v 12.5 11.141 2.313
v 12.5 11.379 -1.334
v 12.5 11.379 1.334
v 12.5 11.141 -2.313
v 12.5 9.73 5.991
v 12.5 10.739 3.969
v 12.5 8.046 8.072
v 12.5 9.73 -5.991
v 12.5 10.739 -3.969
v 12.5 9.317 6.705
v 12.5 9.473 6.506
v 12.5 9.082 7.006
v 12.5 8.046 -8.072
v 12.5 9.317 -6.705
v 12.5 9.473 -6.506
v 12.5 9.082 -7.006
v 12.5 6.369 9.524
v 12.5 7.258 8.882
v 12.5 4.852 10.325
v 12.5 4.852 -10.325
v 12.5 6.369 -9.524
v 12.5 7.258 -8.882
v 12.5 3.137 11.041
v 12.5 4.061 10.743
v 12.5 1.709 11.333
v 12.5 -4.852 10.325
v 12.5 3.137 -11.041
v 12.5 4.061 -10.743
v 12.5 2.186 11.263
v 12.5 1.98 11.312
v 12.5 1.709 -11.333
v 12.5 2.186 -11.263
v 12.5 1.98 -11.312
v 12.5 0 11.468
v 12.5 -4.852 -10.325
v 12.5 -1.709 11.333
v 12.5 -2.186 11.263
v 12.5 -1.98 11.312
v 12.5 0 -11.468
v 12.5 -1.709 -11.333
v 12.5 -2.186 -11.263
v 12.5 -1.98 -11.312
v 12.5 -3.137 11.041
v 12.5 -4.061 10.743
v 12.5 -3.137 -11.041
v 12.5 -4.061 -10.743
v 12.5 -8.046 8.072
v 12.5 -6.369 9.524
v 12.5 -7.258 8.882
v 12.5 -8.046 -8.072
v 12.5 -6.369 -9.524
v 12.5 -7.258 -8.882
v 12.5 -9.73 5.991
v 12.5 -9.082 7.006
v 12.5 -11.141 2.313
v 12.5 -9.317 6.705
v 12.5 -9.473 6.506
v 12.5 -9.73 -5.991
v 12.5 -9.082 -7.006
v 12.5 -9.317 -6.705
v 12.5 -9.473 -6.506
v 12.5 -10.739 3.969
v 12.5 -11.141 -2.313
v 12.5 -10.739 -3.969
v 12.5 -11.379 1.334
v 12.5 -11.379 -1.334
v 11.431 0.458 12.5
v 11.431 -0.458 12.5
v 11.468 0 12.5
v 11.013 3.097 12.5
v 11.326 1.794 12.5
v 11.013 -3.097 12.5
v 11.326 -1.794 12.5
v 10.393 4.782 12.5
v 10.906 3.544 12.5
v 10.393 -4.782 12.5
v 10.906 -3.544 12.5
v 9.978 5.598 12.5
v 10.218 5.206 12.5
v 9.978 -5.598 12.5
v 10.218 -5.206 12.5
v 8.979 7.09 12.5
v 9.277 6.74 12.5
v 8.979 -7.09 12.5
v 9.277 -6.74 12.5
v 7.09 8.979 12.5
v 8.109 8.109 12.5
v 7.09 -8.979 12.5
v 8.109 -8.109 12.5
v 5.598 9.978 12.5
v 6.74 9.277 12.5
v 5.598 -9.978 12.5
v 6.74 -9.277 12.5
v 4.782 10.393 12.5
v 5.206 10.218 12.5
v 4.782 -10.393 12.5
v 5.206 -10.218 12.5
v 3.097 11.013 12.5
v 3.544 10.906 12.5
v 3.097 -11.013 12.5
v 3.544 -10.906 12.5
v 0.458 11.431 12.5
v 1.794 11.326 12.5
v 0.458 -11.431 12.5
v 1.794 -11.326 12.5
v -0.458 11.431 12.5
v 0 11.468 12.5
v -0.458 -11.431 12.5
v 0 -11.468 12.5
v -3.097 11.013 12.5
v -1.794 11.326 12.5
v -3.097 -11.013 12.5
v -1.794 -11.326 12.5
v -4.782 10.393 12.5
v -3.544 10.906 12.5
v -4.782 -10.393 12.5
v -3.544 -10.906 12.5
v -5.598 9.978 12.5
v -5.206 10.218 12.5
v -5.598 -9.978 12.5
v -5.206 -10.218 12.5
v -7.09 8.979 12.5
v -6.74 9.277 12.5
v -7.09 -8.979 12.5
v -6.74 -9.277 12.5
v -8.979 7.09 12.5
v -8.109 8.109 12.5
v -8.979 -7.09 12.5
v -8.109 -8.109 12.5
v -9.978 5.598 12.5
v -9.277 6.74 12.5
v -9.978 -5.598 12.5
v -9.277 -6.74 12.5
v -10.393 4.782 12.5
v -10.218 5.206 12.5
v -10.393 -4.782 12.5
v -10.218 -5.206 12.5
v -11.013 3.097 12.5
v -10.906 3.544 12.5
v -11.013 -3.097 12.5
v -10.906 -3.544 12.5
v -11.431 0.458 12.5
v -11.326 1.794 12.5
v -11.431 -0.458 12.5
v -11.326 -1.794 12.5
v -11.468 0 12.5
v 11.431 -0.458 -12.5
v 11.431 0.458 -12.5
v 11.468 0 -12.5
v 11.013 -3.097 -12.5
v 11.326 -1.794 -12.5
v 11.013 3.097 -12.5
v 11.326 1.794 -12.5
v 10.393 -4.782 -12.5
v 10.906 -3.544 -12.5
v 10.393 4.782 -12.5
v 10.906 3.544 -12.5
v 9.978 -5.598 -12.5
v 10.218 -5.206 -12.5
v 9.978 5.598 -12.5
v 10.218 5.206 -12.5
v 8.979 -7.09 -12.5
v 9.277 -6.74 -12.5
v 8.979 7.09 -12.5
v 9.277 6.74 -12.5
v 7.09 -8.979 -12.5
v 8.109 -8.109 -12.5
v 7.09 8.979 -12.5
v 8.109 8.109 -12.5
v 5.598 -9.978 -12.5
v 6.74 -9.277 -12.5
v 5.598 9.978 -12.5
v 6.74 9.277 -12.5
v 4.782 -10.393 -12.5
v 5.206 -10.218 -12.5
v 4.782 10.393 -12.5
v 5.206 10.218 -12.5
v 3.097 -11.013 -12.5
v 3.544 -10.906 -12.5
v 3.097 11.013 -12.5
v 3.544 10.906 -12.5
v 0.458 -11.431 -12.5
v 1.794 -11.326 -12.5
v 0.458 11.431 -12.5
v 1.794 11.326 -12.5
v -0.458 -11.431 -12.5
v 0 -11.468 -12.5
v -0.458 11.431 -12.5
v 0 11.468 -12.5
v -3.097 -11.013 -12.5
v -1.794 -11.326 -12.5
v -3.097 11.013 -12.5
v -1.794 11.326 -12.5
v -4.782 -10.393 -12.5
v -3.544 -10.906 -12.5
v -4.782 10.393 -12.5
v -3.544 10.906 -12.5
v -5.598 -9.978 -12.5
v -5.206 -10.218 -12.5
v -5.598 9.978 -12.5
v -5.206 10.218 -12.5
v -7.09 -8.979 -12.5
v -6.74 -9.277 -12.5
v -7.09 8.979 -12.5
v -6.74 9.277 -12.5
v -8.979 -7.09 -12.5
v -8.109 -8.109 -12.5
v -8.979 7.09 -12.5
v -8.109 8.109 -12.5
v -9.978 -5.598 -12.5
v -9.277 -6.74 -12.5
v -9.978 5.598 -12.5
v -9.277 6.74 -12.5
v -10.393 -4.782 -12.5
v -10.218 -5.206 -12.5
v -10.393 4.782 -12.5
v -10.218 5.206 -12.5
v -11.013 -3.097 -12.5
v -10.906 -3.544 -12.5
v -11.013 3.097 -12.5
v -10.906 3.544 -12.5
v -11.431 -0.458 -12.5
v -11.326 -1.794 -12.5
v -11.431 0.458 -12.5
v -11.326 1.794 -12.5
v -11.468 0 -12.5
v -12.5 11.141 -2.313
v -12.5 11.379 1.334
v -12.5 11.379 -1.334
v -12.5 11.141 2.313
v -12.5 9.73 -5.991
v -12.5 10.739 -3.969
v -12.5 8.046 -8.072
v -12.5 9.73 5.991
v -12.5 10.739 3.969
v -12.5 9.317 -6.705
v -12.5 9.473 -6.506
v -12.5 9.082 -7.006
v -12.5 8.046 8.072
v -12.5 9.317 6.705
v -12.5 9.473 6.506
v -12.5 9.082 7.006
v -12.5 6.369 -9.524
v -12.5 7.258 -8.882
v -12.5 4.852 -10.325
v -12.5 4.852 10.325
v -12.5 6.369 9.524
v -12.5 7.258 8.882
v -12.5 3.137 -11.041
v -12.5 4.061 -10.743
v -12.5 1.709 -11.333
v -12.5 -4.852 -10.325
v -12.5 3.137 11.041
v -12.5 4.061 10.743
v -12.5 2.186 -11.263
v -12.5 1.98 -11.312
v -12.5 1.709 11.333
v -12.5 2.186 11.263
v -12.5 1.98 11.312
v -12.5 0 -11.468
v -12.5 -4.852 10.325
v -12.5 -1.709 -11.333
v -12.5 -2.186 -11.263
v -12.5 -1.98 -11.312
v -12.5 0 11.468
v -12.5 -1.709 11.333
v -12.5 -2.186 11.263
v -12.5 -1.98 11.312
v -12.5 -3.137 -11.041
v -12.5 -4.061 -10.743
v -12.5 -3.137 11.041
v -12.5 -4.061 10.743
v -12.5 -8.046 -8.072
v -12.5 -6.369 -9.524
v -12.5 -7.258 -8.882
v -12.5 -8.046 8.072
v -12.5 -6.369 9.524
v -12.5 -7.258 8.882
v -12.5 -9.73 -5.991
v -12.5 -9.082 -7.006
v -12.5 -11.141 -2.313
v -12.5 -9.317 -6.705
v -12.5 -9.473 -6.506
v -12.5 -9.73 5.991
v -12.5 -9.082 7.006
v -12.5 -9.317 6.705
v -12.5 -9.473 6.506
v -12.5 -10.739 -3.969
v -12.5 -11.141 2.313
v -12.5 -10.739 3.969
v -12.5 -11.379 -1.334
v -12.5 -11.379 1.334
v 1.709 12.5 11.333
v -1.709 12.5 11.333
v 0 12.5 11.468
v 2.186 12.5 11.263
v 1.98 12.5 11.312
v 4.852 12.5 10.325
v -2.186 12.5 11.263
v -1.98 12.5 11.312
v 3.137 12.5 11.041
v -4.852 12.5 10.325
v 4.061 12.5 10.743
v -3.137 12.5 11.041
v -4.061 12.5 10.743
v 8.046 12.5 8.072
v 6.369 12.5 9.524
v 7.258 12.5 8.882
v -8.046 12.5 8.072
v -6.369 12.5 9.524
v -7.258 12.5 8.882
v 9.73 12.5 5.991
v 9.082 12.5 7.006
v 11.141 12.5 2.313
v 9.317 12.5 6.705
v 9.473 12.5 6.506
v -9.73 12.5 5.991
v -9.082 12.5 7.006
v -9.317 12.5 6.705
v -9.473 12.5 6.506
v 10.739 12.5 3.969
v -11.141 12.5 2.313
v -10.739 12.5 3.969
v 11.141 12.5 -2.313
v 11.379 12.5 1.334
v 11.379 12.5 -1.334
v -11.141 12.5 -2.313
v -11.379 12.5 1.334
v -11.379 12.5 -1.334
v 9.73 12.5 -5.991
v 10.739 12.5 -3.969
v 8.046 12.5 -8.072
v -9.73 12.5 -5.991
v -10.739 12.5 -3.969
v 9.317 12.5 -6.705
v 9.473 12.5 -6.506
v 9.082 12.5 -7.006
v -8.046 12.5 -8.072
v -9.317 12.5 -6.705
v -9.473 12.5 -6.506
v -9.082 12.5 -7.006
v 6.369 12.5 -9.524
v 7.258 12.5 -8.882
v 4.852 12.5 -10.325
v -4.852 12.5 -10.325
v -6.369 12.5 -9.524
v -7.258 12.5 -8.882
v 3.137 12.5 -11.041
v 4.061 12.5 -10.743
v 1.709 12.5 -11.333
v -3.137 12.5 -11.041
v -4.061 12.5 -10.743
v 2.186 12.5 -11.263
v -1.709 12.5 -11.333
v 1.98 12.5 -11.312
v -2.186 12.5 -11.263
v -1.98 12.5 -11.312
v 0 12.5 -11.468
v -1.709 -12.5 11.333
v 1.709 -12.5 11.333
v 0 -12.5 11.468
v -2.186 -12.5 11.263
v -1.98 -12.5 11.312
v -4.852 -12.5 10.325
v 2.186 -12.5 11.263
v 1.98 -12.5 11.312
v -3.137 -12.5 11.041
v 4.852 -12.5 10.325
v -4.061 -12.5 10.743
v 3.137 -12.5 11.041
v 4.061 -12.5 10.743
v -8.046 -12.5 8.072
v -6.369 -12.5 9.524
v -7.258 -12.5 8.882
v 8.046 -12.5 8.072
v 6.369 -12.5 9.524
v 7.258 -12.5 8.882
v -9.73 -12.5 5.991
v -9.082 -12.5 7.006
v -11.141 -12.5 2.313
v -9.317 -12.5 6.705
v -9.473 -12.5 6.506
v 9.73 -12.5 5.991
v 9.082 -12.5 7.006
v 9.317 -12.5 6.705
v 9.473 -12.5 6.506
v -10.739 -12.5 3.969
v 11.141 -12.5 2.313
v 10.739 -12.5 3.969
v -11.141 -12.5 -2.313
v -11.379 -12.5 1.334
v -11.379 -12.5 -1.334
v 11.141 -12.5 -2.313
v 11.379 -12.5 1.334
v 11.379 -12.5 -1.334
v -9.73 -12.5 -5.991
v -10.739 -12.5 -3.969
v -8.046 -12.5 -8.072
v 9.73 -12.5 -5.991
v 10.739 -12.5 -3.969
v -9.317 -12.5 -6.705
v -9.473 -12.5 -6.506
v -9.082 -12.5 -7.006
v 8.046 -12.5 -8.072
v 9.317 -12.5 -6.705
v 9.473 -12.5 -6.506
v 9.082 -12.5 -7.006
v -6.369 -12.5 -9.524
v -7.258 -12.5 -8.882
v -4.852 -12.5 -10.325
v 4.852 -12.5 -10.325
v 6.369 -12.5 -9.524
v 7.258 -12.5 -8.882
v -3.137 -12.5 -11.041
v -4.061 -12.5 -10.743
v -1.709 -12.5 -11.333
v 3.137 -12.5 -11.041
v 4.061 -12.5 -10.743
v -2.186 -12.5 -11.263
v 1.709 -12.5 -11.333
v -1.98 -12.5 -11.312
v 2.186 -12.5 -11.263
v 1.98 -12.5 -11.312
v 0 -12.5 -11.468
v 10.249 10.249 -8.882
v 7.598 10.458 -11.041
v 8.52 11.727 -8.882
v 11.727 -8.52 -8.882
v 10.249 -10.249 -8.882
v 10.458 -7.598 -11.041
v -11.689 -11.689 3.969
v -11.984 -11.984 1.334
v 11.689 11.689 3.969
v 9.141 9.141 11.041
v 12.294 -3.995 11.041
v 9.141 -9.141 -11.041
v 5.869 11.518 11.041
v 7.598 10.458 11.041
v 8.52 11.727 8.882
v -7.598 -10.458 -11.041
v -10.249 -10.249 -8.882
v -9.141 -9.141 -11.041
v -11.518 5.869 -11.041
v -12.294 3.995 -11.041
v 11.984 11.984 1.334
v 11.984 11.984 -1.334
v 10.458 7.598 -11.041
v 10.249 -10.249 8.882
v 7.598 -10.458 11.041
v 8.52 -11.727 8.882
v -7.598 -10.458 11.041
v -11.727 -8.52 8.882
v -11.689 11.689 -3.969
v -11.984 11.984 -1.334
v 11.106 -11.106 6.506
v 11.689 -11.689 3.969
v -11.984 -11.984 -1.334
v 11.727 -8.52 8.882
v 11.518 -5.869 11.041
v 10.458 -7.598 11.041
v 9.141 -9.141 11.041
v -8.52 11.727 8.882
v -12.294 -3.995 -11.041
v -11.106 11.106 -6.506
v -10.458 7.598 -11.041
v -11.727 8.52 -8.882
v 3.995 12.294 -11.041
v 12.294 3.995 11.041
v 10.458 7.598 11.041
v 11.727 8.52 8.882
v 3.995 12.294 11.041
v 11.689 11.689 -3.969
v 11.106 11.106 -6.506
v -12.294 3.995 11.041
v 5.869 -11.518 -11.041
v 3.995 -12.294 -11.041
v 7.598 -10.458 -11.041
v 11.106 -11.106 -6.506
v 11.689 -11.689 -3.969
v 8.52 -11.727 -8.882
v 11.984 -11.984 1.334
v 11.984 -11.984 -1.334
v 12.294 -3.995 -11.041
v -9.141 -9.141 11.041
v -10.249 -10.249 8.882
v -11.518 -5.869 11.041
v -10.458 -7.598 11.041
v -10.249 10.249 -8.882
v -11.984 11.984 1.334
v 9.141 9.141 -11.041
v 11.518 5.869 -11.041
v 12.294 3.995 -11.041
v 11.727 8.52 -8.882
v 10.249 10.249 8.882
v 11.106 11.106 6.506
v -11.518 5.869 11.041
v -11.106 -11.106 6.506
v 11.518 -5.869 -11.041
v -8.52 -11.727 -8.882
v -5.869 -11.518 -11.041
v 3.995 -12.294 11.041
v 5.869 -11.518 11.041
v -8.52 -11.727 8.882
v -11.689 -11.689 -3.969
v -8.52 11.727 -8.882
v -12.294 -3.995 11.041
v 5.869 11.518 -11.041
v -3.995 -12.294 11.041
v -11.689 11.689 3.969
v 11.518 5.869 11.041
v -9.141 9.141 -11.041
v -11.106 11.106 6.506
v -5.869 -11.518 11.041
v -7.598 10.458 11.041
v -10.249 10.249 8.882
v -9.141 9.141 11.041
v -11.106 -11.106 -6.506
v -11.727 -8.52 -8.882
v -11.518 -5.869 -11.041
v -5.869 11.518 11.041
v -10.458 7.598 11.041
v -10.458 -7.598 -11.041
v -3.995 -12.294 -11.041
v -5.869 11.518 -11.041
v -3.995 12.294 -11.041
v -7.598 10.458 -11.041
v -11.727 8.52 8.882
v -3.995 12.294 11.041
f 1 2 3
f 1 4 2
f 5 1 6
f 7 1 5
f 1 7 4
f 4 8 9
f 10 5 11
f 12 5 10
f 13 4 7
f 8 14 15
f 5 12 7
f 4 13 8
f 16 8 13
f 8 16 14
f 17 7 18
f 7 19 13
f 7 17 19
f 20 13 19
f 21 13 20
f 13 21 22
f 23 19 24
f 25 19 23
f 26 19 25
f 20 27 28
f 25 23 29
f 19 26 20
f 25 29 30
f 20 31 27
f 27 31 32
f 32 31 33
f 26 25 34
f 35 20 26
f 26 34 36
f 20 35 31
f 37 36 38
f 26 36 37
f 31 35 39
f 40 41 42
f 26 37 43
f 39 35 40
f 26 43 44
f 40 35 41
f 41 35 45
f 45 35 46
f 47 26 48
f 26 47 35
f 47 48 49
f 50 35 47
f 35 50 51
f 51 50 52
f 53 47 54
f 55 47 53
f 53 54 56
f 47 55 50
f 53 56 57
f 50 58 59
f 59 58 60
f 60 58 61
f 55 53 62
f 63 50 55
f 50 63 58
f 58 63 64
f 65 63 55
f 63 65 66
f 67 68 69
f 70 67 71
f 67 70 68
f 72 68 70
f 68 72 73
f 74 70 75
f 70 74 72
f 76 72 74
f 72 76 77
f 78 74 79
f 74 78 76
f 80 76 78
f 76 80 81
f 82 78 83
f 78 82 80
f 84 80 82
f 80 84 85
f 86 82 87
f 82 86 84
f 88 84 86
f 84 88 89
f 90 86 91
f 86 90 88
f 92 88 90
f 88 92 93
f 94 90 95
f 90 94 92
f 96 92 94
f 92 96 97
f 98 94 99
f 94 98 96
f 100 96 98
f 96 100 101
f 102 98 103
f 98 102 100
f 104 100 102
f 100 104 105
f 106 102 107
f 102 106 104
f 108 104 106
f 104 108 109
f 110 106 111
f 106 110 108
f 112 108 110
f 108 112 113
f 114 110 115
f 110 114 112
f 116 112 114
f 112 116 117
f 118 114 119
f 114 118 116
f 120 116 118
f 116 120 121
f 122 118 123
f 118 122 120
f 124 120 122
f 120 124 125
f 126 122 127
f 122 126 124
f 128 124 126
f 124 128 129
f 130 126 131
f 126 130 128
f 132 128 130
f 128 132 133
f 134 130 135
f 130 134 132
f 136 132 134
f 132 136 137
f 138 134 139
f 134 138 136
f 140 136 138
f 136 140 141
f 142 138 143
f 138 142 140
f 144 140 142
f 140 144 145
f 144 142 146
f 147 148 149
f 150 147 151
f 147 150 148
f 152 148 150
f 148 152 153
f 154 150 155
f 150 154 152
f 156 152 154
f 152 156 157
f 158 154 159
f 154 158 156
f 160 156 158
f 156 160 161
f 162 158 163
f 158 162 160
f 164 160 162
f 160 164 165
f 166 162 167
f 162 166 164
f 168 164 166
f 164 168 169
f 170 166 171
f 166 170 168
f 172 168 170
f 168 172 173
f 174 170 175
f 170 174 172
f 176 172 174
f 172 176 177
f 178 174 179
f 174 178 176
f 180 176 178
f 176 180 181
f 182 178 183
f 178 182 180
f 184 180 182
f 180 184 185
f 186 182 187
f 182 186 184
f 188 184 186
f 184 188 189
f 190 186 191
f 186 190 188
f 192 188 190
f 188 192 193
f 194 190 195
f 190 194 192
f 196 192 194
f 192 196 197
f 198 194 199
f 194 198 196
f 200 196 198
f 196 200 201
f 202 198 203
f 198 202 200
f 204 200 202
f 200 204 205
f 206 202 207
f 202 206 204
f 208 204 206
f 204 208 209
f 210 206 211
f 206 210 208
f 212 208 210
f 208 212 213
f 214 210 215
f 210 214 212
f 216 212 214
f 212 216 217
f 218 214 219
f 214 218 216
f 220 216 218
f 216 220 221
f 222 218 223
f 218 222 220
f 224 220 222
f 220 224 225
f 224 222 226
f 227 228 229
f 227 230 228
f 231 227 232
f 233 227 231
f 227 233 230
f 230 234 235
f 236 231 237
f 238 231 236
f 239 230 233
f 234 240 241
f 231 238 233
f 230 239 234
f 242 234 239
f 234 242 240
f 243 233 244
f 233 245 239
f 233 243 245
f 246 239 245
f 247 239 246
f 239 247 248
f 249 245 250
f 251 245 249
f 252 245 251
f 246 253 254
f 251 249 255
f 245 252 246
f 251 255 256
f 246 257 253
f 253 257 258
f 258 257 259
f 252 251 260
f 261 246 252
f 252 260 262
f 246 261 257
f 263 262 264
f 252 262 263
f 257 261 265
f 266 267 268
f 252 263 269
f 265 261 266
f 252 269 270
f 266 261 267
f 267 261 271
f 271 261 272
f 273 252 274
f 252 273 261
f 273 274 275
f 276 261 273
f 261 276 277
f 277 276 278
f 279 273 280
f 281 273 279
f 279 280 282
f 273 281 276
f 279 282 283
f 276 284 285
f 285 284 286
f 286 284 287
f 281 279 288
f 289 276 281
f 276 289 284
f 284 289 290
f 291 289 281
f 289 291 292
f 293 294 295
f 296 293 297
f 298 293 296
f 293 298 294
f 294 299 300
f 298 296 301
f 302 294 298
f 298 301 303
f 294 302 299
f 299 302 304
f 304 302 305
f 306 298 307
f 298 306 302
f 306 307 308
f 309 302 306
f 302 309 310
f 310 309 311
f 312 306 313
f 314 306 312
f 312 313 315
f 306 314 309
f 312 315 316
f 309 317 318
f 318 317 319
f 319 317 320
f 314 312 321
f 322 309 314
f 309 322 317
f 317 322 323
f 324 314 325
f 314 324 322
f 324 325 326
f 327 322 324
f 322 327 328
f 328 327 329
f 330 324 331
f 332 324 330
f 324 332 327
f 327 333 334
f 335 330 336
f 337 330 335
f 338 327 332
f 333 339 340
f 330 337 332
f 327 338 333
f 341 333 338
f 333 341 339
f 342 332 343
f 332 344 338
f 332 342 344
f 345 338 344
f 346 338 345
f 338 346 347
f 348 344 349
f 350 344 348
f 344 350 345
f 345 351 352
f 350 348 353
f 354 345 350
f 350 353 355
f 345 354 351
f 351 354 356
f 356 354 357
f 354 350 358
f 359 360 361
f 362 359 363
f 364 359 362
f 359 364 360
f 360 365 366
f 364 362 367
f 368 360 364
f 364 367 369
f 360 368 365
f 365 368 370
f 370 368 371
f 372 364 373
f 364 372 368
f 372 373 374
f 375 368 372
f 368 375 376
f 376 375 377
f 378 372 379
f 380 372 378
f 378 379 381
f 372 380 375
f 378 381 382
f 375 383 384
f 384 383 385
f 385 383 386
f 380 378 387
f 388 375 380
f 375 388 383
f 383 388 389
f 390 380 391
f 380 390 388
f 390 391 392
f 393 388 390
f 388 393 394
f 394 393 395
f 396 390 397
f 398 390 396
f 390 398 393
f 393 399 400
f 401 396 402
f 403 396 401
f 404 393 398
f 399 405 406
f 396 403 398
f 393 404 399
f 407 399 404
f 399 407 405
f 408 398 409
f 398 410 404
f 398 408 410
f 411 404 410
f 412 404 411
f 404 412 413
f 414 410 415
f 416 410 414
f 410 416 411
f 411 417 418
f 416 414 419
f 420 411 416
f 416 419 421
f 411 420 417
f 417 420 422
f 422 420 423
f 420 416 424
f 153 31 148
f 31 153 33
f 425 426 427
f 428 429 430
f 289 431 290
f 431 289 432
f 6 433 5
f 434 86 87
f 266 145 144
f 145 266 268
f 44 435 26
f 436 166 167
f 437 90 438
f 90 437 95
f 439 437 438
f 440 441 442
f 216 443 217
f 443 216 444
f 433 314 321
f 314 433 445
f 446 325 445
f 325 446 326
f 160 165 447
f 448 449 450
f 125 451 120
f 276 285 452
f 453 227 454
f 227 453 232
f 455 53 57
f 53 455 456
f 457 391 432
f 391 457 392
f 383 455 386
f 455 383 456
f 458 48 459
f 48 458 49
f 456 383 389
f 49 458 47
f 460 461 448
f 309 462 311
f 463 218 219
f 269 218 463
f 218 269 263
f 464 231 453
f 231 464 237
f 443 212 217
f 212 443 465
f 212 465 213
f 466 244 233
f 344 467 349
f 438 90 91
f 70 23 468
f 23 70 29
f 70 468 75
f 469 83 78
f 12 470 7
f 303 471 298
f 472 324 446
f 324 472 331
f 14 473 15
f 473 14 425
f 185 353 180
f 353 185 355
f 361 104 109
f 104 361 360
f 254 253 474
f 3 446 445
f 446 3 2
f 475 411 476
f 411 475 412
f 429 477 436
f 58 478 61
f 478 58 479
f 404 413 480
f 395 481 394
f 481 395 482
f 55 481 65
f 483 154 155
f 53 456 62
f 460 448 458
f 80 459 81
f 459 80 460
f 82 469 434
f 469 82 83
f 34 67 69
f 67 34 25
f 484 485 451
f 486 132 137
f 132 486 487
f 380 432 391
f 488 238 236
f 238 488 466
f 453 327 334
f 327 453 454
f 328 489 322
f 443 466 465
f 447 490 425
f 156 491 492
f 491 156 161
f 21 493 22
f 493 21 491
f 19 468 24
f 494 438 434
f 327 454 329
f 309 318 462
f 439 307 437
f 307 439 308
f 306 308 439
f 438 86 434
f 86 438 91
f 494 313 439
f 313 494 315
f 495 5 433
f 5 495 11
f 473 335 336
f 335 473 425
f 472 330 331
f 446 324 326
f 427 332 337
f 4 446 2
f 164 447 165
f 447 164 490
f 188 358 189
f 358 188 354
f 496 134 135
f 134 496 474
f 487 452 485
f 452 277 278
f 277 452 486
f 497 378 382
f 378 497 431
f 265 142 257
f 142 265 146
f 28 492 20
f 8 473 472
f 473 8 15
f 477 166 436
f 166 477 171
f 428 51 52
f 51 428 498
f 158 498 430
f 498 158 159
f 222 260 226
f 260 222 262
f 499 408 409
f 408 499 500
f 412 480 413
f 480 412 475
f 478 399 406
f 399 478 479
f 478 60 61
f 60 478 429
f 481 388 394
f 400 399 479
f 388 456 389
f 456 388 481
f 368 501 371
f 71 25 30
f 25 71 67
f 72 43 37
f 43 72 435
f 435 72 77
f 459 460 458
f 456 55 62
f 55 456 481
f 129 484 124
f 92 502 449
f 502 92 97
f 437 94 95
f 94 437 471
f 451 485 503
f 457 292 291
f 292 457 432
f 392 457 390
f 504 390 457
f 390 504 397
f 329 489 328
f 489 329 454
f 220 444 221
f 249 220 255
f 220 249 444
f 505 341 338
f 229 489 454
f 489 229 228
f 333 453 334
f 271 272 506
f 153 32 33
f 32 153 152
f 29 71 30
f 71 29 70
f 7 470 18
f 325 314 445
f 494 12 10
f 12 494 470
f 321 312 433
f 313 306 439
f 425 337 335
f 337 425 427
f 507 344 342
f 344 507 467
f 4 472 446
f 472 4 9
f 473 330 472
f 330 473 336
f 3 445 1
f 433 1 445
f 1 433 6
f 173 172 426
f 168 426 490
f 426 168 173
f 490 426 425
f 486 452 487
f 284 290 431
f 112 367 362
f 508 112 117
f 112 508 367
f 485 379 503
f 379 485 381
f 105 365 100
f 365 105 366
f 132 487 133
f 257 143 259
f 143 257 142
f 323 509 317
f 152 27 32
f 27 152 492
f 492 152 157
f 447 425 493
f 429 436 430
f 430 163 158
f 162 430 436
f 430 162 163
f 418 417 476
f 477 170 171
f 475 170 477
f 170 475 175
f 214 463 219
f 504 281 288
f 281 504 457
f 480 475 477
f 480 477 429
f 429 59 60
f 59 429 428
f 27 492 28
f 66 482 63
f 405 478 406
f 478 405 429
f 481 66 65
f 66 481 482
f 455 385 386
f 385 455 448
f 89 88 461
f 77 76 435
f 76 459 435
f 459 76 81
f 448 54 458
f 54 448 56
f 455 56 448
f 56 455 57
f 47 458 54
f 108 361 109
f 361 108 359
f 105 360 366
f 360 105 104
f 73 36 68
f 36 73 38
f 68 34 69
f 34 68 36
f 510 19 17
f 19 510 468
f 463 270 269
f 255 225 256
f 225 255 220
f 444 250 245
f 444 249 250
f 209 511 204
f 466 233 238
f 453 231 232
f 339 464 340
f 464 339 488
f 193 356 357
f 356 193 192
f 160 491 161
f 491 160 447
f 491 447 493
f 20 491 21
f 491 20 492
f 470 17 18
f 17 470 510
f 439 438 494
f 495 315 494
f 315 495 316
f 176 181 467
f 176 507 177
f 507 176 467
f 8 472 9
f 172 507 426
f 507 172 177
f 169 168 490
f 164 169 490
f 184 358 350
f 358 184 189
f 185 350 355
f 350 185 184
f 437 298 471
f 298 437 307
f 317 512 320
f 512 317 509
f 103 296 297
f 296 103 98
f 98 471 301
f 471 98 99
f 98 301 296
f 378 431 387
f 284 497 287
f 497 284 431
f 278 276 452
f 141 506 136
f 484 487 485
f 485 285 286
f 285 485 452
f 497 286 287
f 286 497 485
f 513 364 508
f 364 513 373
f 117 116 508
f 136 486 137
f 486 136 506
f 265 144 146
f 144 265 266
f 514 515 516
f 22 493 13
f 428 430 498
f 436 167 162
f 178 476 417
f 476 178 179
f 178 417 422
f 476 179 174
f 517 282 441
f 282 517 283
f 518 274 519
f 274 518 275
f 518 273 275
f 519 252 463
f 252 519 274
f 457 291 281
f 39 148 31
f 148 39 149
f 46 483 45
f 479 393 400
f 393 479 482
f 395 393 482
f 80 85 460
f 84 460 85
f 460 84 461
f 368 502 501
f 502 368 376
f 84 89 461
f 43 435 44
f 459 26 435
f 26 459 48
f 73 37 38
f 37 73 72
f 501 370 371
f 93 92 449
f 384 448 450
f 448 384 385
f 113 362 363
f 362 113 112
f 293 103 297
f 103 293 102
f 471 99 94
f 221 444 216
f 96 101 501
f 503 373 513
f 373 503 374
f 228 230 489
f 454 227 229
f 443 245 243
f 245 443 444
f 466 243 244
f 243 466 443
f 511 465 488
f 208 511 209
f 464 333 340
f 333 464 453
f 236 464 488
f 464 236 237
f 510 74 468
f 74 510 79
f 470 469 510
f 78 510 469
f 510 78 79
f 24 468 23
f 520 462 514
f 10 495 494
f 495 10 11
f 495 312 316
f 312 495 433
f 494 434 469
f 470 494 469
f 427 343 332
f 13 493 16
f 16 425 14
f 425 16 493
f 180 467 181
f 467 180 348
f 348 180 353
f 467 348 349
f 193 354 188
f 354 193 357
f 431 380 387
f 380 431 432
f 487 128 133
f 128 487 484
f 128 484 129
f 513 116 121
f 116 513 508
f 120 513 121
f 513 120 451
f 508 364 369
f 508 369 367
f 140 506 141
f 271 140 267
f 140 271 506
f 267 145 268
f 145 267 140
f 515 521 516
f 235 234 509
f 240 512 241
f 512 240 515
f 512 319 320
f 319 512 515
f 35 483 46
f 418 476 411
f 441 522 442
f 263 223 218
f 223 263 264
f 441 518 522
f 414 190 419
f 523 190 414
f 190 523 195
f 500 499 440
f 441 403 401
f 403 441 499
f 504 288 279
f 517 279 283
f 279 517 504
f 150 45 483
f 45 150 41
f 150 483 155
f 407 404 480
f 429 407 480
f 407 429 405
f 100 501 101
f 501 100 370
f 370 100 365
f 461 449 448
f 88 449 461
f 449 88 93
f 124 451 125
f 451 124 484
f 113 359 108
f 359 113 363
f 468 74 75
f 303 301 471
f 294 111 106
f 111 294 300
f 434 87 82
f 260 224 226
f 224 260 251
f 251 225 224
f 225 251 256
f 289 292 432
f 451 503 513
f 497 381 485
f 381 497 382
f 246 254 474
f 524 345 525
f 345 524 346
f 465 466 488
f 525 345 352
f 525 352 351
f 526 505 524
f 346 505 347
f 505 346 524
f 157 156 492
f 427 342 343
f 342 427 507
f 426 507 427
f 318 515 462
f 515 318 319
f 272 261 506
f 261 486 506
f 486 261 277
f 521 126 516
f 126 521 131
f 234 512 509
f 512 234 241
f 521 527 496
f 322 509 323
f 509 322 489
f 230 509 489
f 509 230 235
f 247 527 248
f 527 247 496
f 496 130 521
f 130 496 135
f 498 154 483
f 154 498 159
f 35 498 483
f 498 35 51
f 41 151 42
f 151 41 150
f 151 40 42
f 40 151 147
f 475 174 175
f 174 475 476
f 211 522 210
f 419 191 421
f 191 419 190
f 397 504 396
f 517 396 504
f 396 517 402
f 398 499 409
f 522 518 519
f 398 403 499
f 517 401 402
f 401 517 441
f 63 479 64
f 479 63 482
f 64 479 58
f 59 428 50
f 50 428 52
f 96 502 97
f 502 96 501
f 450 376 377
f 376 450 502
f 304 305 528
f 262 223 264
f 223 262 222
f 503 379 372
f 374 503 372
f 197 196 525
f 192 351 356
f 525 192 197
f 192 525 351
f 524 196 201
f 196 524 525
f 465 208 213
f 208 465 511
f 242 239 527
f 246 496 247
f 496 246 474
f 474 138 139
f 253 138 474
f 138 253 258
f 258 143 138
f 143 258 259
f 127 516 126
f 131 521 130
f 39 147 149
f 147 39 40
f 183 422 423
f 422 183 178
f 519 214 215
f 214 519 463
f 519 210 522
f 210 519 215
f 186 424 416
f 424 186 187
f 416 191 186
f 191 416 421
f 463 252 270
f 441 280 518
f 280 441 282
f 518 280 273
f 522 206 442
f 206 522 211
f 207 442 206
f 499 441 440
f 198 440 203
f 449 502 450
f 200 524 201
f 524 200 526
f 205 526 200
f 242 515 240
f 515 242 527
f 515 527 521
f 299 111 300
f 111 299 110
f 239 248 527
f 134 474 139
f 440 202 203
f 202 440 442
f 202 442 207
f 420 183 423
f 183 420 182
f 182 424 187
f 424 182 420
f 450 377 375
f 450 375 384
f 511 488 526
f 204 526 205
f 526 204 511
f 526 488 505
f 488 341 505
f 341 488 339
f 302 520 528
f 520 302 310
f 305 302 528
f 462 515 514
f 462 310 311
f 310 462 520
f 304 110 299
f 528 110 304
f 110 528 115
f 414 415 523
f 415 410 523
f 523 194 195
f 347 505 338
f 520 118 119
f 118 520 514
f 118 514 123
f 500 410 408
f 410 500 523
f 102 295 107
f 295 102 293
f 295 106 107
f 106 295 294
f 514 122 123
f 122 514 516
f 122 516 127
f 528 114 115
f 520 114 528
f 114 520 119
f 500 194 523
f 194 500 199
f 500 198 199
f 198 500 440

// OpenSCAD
// Intersection of cube and sphere
intersection() {
    cube([25, 25, 25], center = true);
    sphere(r = 17, $fn = 40);
}
